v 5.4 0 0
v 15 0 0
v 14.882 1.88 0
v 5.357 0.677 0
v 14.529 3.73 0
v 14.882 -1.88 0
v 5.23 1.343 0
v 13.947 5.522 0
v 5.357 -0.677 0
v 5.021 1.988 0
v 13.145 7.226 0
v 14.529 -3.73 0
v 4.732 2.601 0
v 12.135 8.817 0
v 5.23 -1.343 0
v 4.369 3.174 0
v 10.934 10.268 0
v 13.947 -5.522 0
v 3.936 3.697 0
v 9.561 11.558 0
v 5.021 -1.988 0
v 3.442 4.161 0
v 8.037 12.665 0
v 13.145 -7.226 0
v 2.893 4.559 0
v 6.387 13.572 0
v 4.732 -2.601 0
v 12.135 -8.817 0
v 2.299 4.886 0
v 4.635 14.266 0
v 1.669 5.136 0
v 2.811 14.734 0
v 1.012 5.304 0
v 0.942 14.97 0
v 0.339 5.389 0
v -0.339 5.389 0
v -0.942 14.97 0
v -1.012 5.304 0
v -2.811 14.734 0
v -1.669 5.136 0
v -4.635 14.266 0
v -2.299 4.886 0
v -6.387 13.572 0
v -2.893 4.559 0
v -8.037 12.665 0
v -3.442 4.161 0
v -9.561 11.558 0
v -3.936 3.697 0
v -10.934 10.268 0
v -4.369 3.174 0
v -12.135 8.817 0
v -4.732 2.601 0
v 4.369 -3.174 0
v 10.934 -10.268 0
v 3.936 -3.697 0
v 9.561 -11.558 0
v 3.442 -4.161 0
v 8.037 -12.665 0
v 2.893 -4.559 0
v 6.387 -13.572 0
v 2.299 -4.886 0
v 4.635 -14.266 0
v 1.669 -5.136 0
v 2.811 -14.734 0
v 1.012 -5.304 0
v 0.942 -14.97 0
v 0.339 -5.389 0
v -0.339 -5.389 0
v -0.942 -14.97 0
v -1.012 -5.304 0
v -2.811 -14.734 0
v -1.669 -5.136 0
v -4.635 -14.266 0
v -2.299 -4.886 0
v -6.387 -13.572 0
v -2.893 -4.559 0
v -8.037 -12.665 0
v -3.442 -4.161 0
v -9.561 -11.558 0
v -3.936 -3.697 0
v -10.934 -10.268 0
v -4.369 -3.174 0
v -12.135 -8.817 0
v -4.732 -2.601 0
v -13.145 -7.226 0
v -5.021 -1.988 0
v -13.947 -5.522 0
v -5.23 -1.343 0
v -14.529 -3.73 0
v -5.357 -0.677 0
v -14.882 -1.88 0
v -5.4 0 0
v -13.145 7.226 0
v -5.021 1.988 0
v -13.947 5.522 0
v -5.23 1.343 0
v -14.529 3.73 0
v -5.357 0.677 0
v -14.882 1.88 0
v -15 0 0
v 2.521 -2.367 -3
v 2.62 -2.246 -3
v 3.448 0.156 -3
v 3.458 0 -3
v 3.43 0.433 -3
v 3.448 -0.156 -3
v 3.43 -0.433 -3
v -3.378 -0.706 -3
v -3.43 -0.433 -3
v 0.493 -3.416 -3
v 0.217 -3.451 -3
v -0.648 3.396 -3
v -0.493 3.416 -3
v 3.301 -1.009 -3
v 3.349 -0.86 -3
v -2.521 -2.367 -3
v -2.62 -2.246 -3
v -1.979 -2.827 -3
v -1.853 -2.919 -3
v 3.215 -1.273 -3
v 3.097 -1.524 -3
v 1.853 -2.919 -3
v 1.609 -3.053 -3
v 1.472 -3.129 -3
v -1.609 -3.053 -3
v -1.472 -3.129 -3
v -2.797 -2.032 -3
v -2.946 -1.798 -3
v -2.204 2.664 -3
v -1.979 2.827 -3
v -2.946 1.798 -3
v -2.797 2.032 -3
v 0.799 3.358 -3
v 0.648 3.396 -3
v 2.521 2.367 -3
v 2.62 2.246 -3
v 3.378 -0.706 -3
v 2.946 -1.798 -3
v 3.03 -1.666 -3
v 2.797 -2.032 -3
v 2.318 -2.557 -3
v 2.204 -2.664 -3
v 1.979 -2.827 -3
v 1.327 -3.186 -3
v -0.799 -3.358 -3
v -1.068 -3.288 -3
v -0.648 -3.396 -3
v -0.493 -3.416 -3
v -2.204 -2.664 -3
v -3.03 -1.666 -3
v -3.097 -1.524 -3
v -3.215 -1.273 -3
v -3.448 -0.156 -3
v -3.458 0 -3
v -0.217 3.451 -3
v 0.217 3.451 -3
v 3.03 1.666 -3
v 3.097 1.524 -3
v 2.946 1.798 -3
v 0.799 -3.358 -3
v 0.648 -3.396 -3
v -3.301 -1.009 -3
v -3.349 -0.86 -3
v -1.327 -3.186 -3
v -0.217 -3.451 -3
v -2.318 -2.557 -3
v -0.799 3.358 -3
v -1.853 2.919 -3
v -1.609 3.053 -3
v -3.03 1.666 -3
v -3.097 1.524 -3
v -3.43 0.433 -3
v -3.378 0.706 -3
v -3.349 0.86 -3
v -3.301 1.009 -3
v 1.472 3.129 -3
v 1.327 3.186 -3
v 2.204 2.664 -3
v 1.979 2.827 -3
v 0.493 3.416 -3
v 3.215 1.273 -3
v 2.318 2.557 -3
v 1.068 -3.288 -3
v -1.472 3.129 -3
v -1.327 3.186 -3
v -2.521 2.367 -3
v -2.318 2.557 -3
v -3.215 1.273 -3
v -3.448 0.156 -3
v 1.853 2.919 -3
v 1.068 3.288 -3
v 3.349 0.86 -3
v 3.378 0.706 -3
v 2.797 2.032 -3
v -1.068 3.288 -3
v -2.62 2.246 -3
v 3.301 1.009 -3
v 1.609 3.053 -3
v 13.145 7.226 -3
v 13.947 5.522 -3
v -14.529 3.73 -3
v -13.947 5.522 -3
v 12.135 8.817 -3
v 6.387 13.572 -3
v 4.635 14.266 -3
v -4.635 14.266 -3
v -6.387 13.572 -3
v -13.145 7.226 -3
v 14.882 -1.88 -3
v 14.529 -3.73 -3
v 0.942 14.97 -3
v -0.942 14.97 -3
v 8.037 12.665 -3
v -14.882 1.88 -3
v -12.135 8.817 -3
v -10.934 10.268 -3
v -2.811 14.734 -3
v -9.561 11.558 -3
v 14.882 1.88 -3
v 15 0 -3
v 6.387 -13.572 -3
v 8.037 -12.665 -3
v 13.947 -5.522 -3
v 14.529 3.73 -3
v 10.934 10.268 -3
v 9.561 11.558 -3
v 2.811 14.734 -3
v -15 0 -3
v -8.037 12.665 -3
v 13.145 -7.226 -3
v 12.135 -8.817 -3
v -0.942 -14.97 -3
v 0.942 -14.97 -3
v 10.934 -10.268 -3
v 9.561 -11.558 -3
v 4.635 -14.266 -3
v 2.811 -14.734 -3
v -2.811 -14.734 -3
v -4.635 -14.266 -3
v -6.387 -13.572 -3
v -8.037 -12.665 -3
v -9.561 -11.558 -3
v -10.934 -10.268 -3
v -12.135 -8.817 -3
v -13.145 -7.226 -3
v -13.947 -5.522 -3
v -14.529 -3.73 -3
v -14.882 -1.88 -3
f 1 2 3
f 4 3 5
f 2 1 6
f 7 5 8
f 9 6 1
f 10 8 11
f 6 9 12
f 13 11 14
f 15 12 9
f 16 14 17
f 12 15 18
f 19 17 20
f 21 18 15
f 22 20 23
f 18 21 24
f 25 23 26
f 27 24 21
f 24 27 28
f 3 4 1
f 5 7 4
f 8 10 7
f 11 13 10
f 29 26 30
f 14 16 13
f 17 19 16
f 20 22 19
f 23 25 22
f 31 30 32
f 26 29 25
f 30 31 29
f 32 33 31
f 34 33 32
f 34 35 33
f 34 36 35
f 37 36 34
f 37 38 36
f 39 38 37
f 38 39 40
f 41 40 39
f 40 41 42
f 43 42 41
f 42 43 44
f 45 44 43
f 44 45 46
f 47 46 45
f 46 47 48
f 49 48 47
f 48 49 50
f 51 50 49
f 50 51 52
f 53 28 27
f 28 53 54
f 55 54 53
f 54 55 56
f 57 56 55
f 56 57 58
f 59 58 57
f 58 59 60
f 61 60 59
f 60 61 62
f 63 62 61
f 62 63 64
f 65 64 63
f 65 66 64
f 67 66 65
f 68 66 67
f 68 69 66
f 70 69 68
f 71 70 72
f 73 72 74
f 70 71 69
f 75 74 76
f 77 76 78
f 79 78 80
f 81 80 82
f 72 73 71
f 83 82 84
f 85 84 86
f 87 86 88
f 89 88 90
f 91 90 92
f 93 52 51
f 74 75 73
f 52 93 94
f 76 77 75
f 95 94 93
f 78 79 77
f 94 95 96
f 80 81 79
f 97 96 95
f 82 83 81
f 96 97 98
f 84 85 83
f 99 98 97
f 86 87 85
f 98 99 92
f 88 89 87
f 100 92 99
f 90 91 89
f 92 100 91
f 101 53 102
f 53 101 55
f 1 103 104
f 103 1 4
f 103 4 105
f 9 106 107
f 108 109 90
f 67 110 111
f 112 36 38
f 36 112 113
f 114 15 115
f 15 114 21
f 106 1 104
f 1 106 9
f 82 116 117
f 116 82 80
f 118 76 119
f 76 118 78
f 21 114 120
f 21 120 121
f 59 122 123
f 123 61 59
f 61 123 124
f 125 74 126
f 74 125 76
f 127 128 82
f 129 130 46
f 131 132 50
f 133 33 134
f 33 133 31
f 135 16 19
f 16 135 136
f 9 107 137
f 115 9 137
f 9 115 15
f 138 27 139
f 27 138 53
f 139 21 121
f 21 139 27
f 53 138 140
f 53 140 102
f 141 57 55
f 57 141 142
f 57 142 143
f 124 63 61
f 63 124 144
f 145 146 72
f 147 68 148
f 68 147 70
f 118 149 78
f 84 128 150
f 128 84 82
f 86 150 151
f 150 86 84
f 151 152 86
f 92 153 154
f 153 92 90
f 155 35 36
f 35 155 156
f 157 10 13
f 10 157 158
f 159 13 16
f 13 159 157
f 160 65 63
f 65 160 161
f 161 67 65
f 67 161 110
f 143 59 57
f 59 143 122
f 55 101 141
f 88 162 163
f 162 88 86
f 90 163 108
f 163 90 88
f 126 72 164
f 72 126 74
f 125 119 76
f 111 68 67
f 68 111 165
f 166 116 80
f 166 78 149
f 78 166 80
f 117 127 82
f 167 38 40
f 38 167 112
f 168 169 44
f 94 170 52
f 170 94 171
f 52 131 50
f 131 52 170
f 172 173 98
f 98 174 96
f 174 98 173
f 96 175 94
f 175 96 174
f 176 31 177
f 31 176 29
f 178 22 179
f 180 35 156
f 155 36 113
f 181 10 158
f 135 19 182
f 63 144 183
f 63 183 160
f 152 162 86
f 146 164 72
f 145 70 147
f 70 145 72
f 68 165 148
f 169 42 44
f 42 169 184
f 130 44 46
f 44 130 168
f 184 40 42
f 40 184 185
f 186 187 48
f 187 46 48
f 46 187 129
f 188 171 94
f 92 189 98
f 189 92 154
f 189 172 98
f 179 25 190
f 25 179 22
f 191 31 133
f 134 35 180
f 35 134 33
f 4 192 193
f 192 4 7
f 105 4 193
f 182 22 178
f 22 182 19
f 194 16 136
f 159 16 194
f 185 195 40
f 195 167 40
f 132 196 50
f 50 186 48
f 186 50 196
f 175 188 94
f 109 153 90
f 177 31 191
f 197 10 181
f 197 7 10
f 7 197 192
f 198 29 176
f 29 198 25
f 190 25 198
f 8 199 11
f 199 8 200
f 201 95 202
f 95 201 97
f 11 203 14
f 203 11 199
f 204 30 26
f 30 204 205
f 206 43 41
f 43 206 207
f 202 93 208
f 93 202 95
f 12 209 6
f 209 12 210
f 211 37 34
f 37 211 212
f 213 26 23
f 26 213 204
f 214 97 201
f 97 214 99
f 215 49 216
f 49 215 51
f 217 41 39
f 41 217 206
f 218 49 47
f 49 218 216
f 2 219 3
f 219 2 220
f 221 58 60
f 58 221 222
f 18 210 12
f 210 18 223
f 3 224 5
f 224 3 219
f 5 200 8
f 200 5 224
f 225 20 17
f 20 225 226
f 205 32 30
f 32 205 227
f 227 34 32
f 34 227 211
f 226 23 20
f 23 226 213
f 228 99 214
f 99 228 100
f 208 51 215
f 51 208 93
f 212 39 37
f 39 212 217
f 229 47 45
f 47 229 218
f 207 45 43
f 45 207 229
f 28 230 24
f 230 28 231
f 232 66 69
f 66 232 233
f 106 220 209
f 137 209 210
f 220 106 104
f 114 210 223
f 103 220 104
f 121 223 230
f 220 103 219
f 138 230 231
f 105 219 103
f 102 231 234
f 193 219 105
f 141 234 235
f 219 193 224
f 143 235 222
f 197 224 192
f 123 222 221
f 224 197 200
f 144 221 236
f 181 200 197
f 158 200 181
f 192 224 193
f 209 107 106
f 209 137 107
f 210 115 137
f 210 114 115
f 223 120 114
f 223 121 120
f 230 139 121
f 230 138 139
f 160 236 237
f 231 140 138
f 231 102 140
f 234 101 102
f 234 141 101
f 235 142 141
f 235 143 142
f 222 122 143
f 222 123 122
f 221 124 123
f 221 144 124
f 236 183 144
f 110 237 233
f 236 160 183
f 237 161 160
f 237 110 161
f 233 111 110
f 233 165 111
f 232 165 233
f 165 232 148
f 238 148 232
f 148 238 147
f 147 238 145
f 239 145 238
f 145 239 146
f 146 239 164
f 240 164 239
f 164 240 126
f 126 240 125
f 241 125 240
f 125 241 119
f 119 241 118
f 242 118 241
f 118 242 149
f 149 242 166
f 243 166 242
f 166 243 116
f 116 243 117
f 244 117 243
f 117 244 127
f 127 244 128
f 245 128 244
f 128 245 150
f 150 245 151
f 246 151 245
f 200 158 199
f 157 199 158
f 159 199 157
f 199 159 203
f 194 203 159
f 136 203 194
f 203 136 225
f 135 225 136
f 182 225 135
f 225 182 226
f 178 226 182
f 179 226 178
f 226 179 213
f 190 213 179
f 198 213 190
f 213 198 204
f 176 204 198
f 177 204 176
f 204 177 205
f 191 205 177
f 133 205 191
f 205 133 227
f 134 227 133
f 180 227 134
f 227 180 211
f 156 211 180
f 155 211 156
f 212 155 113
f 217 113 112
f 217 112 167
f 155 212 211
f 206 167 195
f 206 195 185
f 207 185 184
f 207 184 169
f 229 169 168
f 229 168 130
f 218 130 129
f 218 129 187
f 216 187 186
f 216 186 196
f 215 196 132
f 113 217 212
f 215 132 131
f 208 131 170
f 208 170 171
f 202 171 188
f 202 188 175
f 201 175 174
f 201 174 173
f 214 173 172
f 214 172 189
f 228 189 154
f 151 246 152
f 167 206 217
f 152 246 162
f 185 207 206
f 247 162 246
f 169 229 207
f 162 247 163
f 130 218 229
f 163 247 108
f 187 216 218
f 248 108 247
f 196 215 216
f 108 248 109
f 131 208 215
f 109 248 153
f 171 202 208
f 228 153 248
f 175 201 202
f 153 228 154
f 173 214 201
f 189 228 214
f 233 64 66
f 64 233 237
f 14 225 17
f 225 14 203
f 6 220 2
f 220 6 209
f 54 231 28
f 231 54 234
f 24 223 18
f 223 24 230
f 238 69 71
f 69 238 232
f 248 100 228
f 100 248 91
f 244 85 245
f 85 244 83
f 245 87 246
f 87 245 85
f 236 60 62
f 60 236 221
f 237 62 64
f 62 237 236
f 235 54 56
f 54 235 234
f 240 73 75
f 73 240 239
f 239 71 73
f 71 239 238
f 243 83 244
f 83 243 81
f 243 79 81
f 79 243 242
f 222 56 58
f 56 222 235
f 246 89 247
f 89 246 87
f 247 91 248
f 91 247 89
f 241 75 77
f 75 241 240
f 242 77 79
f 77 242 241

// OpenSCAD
$fn = 50;

difference() {
	union() {
		translate(v = [0, 0, -3.0]) {
			cylinder(h = 3, r = 15.0);
		}
	}
	union() {
		translate(v = [0, 0, 0]) {
			rotate(a = [0, 0, 0]) {
				difference() {
					union() {
						translate(v = [0, 0, -6.0]) {
							cylinder(h = 6, r = 2.6);
						}
						translate(v = [0, 0, -3.9]) {
							cylinder(h = 3.9, r1 = 2.875, r2 = 5.4);
						}
						translate(v = [0, 0, -6.0]) {
							cylinder(h = 6, r = 2.875);
						}
						translate(v = [0, 0, -6.0]) {
							cylinder(h = 6, r = 2.6);
						}
					}
					union();
				}
			}
		}
	}
}
